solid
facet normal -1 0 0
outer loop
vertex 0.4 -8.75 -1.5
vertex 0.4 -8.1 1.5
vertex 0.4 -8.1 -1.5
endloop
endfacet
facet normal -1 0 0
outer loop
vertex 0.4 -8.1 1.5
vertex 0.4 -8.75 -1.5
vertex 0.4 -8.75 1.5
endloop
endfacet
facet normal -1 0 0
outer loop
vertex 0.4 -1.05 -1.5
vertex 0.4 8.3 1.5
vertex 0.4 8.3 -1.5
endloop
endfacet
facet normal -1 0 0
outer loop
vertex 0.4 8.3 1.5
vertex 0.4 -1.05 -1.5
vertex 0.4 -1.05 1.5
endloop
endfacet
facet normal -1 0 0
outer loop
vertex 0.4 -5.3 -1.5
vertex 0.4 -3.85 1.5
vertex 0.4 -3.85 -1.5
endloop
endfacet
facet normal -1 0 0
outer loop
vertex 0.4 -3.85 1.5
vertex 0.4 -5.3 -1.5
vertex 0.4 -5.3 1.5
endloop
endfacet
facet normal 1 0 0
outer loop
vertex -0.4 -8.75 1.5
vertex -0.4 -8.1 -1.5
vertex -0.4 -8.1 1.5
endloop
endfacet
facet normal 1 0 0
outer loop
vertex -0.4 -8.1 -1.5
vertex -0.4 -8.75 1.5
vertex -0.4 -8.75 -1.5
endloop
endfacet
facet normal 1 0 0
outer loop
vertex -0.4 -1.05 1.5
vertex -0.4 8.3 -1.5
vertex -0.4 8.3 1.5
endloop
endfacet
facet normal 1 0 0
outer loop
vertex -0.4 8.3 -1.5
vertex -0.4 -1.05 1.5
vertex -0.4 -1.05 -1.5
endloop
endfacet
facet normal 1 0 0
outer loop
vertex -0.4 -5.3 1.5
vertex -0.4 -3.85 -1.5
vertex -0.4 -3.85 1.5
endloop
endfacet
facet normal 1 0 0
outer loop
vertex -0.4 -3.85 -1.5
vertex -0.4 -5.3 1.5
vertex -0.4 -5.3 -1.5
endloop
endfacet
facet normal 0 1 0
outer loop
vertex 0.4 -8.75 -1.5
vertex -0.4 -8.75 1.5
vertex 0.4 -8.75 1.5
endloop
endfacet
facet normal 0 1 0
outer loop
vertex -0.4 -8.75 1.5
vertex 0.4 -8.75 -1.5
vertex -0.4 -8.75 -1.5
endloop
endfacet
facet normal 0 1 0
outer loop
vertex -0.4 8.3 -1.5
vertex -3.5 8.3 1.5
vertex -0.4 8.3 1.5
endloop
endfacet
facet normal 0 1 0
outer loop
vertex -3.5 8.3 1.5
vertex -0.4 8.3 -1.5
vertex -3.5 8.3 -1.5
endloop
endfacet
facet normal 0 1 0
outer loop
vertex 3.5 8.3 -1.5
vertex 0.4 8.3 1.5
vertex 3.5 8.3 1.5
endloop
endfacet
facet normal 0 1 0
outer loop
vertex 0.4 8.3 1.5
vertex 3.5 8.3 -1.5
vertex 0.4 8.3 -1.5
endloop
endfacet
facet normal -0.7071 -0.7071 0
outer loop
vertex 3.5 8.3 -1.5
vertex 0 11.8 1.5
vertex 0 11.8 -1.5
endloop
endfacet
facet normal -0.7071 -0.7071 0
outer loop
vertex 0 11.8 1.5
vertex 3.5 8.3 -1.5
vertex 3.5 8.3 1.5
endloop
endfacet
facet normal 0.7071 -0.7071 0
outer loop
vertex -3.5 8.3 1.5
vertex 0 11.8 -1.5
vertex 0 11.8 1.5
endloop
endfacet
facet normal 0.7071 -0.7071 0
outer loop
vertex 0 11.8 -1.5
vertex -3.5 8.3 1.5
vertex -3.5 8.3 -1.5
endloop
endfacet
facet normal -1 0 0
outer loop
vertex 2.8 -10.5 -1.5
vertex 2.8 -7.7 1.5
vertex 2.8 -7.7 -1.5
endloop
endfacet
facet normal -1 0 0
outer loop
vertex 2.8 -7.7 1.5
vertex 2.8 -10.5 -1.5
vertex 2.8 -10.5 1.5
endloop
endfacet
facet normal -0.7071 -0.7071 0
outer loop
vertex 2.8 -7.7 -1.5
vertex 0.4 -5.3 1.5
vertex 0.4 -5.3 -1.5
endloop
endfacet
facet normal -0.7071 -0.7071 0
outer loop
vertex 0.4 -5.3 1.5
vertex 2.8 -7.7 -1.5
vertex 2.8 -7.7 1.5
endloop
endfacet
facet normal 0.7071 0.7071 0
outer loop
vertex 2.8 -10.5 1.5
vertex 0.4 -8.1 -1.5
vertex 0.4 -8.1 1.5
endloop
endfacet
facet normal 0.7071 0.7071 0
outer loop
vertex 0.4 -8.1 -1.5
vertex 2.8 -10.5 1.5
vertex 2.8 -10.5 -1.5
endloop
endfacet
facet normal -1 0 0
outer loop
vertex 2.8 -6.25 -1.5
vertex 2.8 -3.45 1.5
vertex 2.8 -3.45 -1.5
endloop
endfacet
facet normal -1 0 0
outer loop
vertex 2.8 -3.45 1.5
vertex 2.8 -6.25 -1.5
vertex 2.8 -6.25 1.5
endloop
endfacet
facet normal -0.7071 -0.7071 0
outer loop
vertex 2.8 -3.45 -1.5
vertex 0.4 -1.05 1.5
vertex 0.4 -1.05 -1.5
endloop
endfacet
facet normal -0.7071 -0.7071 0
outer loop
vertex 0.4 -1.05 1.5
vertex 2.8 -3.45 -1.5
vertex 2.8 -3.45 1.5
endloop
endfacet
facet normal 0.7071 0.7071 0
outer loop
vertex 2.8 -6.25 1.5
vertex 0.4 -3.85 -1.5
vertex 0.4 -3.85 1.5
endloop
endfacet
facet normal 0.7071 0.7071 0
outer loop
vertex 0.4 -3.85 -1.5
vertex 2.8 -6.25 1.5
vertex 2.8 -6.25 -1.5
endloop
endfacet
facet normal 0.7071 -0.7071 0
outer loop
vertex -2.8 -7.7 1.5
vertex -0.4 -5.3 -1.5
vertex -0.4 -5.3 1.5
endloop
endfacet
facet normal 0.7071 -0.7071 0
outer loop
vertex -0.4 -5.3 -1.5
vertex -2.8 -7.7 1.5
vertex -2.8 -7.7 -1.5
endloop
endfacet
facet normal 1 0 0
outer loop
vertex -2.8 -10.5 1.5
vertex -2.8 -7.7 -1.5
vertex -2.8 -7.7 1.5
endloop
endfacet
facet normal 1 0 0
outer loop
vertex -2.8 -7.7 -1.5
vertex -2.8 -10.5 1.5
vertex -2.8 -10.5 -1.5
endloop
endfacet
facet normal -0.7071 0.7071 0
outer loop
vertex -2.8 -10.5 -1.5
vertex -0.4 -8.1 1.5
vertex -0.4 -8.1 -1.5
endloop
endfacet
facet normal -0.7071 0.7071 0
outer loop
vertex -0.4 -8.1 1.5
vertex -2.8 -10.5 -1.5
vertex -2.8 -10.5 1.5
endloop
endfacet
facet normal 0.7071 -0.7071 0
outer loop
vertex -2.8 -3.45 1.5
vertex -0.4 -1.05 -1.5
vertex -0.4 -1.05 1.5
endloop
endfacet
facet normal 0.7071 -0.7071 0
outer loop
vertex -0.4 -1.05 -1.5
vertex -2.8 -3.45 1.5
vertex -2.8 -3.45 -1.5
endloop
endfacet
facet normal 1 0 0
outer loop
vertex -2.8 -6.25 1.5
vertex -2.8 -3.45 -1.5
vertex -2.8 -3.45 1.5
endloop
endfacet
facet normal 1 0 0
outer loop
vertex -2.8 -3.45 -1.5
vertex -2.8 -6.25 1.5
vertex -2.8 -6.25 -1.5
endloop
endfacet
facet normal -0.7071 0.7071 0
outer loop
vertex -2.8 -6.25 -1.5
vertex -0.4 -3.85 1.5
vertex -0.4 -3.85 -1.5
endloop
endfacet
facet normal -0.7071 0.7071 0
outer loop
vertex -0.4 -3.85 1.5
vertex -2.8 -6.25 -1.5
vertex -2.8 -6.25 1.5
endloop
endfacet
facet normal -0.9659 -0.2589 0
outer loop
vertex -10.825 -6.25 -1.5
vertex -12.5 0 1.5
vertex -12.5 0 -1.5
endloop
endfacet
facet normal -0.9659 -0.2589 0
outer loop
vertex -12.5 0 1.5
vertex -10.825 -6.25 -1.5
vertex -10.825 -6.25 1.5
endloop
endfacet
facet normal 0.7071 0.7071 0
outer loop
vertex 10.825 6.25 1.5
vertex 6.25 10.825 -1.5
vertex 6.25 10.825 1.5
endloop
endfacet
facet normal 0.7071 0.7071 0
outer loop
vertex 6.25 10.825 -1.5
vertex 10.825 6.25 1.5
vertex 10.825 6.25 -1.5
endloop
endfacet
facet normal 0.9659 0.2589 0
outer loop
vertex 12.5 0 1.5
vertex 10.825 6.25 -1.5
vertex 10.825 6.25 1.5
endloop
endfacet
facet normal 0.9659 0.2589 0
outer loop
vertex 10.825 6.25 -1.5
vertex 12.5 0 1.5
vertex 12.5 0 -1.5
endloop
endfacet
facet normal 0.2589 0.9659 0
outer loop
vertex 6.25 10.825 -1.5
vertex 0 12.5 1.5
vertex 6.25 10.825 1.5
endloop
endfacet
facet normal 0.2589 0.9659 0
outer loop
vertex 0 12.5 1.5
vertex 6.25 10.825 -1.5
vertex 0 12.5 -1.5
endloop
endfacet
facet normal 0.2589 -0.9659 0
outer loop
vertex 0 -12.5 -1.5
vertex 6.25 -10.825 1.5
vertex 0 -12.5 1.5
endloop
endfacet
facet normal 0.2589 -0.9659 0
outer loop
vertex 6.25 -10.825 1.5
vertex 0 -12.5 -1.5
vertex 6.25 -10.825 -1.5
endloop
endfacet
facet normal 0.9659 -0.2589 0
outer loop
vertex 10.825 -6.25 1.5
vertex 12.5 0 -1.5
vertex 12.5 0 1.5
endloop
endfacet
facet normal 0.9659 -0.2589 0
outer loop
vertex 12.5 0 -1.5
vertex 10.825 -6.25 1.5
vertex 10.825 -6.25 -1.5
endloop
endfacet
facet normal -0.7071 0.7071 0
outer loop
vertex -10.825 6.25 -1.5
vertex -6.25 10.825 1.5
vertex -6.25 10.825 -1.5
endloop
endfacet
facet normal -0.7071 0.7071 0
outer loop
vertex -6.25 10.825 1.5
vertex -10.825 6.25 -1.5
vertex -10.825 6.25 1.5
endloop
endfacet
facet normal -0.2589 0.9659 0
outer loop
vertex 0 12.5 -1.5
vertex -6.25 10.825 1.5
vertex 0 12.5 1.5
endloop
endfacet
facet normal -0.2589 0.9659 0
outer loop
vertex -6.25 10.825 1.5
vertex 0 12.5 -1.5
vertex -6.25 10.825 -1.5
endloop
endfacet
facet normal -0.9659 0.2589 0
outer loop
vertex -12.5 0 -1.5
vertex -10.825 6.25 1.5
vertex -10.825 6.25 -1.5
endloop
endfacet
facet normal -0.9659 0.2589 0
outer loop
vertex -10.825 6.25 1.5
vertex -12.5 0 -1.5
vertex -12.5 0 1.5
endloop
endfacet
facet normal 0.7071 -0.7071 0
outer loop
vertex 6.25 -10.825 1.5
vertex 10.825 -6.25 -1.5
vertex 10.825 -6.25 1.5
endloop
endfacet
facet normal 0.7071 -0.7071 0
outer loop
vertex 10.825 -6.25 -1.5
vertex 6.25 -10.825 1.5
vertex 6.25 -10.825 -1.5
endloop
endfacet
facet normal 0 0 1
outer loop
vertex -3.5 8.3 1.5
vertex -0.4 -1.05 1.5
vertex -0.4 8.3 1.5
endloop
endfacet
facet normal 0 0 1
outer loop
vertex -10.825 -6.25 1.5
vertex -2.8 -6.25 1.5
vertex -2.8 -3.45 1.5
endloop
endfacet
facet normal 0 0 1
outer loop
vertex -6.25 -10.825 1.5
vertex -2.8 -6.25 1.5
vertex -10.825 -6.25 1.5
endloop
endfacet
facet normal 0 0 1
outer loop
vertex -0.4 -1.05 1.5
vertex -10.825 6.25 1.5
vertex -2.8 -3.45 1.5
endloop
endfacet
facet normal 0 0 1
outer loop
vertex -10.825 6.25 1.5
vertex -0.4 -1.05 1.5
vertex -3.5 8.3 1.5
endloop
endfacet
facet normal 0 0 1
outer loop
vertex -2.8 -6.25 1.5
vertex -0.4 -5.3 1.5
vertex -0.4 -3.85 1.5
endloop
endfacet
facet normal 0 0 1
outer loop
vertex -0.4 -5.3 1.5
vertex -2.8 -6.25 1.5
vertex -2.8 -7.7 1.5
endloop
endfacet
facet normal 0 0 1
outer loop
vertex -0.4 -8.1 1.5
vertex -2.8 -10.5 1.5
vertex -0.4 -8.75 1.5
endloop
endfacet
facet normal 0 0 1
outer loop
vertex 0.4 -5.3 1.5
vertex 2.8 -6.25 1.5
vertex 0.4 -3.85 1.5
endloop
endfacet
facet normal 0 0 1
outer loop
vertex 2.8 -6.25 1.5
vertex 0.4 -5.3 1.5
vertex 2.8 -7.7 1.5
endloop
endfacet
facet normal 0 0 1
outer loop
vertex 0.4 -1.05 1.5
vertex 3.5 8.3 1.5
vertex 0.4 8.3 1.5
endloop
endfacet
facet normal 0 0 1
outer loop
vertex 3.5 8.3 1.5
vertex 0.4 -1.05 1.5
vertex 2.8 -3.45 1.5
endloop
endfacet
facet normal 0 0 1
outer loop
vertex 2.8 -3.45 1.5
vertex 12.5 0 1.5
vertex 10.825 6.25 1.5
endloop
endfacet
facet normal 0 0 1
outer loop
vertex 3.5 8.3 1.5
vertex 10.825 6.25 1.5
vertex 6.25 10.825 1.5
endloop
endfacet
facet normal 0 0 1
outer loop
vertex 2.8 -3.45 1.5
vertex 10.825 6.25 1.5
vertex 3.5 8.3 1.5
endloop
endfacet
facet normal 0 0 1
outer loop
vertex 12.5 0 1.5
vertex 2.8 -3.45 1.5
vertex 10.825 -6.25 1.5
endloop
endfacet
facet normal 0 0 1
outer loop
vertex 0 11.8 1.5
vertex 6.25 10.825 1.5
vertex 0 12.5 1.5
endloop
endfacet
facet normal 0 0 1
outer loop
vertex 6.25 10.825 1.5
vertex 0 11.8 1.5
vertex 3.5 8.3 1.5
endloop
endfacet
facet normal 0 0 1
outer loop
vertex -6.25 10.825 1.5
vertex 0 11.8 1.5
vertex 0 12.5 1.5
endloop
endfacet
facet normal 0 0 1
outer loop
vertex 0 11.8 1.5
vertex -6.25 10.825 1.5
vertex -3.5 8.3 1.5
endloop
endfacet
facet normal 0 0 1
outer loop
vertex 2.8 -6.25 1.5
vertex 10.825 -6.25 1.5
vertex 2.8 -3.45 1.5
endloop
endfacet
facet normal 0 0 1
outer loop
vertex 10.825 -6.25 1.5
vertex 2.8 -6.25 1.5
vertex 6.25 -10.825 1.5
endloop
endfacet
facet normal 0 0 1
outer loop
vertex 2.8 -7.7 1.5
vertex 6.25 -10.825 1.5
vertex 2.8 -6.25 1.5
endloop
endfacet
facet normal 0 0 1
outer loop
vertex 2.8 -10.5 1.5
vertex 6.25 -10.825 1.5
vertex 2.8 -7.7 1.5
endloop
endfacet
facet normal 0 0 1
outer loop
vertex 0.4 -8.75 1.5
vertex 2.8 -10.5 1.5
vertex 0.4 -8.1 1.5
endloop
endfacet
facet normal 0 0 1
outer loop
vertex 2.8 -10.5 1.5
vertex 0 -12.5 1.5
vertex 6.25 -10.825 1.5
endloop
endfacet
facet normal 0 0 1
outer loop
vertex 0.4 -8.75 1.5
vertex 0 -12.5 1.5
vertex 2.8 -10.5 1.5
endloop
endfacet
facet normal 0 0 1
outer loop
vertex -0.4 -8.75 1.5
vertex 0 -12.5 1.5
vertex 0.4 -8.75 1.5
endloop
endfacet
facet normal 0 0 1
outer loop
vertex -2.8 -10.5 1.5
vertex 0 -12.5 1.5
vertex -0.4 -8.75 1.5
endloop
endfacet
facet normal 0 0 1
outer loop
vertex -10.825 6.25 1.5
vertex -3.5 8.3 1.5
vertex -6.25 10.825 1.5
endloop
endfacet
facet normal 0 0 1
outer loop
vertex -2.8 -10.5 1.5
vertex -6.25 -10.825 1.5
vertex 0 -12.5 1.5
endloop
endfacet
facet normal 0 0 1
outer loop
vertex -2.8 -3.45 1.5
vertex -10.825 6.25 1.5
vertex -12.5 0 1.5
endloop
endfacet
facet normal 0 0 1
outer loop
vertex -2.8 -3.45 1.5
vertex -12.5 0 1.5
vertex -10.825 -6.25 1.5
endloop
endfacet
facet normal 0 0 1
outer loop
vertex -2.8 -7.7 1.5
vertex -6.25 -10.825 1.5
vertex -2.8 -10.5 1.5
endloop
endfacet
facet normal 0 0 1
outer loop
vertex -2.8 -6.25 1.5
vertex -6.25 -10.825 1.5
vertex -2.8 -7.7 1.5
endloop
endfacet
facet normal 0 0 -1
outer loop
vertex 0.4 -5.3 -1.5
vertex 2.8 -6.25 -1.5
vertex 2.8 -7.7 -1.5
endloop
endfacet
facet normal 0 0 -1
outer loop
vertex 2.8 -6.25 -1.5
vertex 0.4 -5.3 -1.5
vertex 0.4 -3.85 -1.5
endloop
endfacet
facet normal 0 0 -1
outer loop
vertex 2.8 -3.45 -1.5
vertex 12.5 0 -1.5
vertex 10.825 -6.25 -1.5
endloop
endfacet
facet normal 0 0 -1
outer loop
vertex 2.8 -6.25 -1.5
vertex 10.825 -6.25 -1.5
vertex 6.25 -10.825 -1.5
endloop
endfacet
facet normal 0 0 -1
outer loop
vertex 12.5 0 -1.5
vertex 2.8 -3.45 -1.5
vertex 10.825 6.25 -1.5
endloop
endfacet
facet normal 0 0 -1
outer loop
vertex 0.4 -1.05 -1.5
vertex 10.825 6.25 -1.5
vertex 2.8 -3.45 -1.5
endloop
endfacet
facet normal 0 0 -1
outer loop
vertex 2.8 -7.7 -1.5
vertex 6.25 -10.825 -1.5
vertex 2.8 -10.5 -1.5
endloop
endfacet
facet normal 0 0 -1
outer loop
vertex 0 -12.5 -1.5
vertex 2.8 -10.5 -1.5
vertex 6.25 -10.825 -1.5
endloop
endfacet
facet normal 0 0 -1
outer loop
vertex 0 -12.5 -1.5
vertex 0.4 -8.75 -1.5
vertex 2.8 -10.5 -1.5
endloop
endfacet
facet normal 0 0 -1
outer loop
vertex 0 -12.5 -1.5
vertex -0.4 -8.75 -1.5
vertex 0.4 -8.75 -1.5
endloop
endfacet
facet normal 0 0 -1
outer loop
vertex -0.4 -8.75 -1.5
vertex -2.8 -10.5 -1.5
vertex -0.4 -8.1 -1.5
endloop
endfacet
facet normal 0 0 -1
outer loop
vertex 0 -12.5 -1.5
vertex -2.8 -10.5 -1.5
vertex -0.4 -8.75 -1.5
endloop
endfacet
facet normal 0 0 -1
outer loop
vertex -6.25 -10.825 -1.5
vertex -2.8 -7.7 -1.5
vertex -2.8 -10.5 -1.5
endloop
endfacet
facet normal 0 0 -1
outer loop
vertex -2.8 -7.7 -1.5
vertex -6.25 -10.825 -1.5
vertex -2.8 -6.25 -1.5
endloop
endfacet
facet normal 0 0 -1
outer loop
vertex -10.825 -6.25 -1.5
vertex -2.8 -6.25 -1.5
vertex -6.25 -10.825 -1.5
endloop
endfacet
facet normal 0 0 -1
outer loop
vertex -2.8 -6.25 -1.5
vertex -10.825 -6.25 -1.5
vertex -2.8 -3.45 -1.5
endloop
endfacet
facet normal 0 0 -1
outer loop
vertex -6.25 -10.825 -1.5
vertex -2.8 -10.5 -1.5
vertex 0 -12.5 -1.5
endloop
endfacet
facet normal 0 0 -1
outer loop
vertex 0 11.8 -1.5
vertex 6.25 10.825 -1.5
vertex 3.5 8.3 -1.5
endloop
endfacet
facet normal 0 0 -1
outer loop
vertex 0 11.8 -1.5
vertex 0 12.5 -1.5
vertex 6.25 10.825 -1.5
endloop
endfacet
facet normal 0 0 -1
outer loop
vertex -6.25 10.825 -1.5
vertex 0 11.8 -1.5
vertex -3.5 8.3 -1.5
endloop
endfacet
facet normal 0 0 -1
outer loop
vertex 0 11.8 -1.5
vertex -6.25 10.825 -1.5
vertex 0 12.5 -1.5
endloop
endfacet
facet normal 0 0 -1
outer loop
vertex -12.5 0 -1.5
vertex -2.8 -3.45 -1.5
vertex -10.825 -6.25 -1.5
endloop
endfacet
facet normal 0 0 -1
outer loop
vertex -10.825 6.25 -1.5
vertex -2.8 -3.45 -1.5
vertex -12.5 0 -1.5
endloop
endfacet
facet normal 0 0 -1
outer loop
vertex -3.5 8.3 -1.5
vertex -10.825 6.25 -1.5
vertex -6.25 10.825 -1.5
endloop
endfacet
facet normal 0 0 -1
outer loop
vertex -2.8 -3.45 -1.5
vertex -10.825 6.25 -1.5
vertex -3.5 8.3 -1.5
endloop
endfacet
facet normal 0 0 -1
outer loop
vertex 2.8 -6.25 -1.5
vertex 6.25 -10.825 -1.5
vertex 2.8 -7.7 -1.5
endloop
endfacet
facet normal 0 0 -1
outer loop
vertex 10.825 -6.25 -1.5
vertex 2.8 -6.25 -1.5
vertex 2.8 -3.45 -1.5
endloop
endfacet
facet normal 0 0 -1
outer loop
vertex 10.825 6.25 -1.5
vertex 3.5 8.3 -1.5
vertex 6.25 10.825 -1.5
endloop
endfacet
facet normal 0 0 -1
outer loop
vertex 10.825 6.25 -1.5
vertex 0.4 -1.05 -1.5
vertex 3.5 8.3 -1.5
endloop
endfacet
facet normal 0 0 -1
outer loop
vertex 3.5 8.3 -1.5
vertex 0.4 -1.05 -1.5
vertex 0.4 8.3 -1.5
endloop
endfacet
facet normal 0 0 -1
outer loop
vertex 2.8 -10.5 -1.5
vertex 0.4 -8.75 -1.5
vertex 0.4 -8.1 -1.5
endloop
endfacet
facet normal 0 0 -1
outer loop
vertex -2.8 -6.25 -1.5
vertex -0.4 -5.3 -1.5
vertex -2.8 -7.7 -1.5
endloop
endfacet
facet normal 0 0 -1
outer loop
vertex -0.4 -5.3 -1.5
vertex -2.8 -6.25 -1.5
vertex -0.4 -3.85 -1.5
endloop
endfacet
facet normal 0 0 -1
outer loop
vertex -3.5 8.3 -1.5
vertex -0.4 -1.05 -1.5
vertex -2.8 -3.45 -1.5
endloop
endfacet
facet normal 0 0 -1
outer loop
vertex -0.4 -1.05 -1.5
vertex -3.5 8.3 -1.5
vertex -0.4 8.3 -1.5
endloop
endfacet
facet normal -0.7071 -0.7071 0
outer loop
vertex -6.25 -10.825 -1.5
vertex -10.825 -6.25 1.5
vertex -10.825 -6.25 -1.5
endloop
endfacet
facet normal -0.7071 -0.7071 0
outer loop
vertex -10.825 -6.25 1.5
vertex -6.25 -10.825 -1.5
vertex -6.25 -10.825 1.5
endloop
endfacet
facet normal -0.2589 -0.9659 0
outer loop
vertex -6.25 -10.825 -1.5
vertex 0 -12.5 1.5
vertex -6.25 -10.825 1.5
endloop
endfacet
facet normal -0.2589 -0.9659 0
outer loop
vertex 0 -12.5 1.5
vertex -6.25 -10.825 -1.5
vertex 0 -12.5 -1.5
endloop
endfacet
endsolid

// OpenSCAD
$fn=12;

// unit is mm

diameter = 25;
thickness = 3;
slit_width = 0.8;
arrow_base = 7;

ab_2 = arrow_base / 2;
thickness12 = 1.2 * thickness;
diameter_2 = diameter / 2;
fs = 0.4 * arrow_base; // feather side
fs2 = 2 * fs;


difference() {

  union() {
    cylinder(d=diameter, h=thickness, center=true);
  }

  union() {

    translate([ 0, 0, 0 ])
      cube([ slit_width, 0.7 * diameter, thickness12 ], center=true);

    translate([ 0, diameter_2 - 1.2 * ab_2, -0.5 * thickness12 ])
      linear_extrude(thickness12)
        polygon([
          [ -ab_2, 0 ], [ 0, ab_2 ], [ ab_2, 0 ] ]);

    translate([ 0, -0.84 * diameter_2, -0.5 * thickness12 ])
      linear_extrude(thickness12)
        polygon([ [ 0, fs ], [ 0, fs2 ], [ fs, fs ], [ fs, 0 ] ]);
    translate([ 0, -0.5 * diameter_2, -0.5 * thickness12 ])
      linear_extrude(thickness12)
        polygon([ [ 0, fs ], [ 0, fs2 ], [ fs, fs ], [ fs, 0 ] ]);

    translate([ 0, -0.84 * diameter_2, -0.5 * thickness12 ])
      linear_extrude(thickness12)
        polygon([ [ 0, fs ], [ 0, fs2 ], [ -fs, fs ], [ -fs, 0 ] ]);
    translate([ 0, -0.5 * diameter_2, -0.5 * thickness12 ])
      linear_extrude(thickness12)
        polygon([ [ 0, fs ], [ 0, fs2 ], [ -fs, fs ], [ -fs, 0 ] ]);
  }
}
